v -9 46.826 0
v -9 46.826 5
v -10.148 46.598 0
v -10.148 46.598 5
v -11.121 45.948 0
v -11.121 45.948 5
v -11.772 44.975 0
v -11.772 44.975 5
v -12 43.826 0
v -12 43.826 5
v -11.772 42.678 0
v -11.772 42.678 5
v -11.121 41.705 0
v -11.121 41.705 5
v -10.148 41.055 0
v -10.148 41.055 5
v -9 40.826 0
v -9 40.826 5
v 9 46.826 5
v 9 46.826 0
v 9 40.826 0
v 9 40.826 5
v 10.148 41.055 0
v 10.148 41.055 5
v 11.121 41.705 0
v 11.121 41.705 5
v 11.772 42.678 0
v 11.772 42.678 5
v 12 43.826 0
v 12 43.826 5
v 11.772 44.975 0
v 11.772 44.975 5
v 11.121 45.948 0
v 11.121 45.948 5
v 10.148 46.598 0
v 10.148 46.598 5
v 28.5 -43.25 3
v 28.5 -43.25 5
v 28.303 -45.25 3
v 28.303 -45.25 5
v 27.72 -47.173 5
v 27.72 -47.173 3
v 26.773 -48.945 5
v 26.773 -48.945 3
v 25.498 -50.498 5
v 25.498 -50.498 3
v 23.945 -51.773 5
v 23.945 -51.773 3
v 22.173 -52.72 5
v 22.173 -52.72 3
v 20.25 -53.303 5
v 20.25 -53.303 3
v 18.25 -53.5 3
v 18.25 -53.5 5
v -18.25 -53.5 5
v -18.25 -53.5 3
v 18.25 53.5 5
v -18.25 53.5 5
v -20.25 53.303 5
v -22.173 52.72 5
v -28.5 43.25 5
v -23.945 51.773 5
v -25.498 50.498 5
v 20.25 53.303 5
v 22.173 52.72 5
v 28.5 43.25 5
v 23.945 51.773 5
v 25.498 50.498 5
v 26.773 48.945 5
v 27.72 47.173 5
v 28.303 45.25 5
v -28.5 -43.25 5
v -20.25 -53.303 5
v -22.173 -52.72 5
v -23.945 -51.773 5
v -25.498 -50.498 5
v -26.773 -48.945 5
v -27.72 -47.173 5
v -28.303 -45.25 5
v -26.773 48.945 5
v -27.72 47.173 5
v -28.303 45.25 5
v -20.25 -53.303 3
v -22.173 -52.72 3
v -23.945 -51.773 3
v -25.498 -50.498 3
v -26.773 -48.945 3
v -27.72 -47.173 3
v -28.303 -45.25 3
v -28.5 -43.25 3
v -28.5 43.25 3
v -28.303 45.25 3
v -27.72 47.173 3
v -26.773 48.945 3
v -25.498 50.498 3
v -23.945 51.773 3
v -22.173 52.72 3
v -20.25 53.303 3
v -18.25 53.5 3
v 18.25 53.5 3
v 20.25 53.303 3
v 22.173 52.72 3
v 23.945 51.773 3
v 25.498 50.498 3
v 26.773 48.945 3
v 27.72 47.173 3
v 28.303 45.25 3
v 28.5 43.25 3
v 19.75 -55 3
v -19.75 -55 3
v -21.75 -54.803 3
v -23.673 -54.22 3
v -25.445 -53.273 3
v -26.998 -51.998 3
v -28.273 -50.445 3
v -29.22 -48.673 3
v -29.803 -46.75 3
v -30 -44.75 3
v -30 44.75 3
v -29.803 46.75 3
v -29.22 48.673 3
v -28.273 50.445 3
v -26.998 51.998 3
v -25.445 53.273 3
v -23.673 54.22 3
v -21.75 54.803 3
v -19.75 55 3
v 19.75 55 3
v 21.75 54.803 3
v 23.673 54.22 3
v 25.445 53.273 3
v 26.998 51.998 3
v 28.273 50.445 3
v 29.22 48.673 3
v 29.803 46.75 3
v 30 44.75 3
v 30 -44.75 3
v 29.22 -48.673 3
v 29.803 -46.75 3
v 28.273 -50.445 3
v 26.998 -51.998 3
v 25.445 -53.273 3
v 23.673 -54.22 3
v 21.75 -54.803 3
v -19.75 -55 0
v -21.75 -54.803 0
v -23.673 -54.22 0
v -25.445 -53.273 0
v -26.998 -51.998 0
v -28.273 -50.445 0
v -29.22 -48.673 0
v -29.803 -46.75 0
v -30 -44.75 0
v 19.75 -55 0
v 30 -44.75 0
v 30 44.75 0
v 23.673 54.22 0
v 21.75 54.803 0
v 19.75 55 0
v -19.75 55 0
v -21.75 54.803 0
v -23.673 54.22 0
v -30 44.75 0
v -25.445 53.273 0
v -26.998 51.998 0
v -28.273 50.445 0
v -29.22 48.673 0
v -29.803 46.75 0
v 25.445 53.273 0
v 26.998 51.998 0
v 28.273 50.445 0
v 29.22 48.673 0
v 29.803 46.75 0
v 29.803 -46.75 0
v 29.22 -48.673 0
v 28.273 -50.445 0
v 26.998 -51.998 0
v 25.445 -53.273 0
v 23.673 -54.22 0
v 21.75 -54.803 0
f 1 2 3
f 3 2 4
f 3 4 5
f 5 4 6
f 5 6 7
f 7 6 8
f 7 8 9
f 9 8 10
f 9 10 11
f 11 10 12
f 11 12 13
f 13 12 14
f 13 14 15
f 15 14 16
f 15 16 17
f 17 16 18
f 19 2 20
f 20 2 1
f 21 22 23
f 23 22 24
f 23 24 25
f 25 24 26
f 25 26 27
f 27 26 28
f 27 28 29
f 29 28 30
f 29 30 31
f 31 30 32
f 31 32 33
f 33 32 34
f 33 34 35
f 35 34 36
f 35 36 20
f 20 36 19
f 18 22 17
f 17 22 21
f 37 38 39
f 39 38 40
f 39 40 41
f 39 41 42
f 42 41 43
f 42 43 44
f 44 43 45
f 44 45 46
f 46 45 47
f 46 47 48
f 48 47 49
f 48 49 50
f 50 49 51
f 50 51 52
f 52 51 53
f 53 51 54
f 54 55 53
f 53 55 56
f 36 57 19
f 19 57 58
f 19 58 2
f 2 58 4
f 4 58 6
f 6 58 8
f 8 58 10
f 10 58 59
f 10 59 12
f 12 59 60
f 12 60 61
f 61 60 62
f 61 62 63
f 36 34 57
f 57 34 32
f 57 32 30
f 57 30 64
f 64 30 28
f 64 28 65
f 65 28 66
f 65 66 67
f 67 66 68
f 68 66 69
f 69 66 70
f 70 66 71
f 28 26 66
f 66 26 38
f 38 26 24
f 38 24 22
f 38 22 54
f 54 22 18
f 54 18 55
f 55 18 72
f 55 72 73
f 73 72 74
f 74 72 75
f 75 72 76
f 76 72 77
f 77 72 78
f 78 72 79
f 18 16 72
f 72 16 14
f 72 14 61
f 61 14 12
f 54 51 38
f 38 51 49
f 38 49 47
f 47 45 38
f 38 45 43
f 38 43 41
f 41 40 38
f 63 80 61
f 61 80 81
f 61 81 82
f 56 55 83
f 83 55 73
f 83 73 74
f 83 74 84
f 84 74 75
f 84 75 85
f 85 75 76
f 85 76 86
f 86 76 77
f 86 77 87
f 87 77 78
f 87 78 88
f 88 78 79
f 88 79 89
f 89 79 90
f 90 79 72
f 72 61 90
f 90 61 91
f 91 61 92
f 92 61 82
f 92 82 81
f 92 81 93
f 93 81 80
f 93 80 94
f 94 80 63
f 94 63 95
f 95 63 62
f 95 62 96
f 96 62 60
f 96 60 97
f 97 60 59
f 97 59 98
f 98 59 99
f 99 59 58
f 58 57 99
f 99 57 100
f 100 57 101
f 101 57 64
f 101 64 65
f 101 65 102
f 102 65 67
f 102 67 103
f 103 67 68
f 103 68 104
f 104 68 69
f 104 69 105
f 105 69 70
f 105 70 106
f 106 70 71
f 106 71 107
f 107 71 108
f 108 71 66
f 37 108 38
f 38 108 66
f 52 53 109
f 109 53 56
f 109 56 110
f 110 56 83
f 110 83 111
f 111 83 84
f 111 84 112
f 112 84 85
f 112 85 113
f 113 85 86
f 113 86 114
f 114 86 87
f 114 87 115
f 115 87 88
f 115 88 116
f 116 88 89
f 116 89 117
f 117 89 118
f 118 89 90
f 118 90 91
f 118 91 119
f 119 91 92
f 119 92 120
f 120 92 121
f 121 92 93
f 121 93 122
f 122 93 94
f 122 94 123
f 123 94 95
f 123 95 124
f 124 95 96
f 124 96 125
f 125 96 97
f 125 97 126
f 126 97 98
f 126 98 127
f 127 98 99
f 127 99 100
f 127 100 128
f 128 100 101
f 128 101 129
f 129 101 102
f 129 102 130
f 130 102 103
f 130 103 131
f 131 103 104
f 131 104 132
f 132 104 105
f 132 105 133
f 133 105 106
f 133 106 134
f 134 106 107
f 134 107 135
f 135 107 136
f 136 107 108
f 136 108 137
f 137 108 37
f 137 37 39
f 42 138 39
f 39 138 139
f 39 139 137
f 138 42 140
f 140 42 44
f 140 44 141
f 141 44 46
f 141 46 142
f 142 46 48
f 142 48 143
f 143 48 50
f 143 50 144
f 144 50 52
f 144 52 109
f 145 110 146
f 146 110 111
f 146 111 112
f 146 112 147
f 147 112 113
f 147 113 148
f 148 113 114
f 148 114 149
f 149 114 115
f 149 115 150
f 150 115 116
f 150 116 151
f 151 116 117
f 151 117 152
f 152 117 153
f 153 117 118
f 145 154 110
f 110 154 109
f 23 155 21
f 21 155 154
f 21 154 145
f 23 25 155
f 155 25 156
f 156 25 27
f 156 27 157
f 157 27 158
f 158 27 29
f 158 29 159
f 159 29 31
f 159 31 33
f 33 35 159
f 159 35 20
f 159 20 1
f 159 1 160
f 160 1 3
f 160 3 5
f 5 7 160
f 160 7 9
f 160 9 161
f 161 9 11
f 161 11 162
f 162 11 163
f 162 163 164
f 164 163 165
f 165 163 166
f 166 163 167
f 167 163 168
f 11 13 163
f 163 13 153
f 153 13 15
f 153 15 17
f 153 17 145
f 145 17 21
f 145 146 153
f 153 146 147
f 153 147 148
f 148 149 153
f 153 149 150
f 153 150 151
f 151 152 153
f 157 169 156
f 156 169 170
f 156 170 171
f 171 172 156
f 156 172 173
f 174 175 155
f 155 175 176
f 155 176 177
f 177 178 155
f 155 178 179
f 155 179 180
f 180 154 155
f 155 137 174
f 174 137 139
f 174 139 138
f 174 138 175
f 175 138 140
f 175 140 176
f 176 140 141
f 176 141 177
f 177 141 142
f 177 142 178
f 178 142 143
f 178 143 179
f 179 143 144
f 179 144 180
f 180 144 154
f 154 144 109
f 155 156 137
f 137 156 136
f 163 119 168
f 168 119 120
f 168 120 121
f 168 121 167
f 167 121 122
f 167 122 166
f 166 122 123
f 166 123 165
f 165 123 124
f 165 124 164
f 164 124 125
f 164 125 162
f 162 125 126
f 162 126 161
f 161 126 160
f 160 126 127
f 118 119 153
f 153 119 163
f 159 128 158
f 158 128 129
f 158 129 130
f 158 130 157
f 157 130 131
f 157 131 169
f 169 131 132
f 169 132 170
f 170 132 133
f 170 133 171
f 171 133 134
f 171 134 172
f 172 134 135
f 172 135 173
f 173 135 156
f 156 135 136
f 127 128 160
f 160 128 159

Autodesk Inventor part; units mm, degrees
ref_plane "YZ Plane" through (0, 0, 0) normal (1, 0, 0) x (0, 1, 0)
ref_plane "XZ Plane" through (0, 0, 0) normal (0, 1, 0) x (-1, 0, 0)
ref_plane "XY Plane" through (0, 0, 0) normal (0, 0, 1) x (1, 0, 0)
sketch "Sketch1" plane through (0, 0, 0) normal (0, 0, 1) x (1, 0, 0)
  line L0 (0, 0) -> (64.8574, 0) construction
  line L1 (-30, -55) -> (30, -55)
  line L2 (30, -55) -> (30, 55)
  line L3 (30, 55) -> (-30, 55)
  line L4 (-30, 55) -> (-30, -55)
  line L5 (-30, -55) -> (30, 55) construction
  line L6 (30, -55) -> (-30, 55) construction
  dimension "d0" = 60
  dimension "d1" = 110
extrude "Extrusion1" add sketch "Sketch1" along normal blind 3
fillet "Fillet1" radius 10.25 4 edges at (30, 55, 1.5) (-30, 55, 1.5) (30, -55, 1.5) (-30, -55, 1.5)
sketch "Sketch2" plane through (0, 0, 3) normal (0, 0, 1) x (1, 0, 0)
  line L0 (0, 0) -> (47.0336, 0) construction
  line L1 (-30, -55) -> (30, -55)
  line L2 (30, -55) -> (30, 55)
  line L3 (30, 55) -> (-30, 55)
  line L4 (-30, 55) -> (-30, -55)
  line L5 (-30, -55) -> (30, 55) construction
  line L6 (30, -55) -> (-30, 55) construction
  line L7 (-28.5, 53.5) -> (28.5, 53.5)
  line L8 (28.5, 53.5) -> (28.5, -53.5)
  line L9 (28.5, -53.5) -> (-28.5, -53.5)
  line L10 (-28.5, -53.5) -> (-28.5, 53.5)
  dimension "d5" = 60
  dimension "d6" = 110
  dimension "d7" = 1.5
extrude "Extrusion2" add sketch "Sketch2" along normal blind 2 contours L7 L8 L9 L10
fillet "Fillet2" radius 10.25 4 edges at (28.5, 53.5, 4) (-28.5, 53.5, 4) (-28.5, -53.5, 4) (28.5, -53.5, 4)
sketch "Sketch3" plane through (0, 0, 0) normal (0, 0, -1) x (-1, 0, 0)
  line L0 (9, 43.8265) -> (-9, 43.8265) construction
  line L1 (9, 45.3265) -> (-9, 45.3265)
  line L2 (-9, 42.3265) -> (9, 42.3265)
  arc A0 (9, 42.3265) -> (9, 45.3265) centre (9, 43.8265) ccw
  arc A1 (-9, 45.3265) -> (-9, 42.3265) centre (-9, 43.8265) ccw
  line L3 (-9, 46.8265) -> (9, 46.8265)
  arc A2 (9, 40.8265) -> (9, 46.8265) centre (9, 43.8265) ccw
  line L4 (9, 40.8265) -> (-9, 40.8265)
  arc A3 (-9, 46.8265) -> (-9, 40.8265) centre (-9, 43.8265) ccw
  point P0 (0, 0)
  point P1 (0, 43.8265)
  dimension "d11" = 9
  dimension "d12" = 3
  dimension "d15" = 1.5
extrude "Extrusion3" cut sketch "Sketch3" against normal through all contours A0 L2 A1 L1 | L3 A2 L4 A3
sketch "Sketch4" plane through (0, 0, 4) normal (0, 0, -1) x (-1, 0, 0)
  point P0 (0, 0)
properties part number "BackPlate"
